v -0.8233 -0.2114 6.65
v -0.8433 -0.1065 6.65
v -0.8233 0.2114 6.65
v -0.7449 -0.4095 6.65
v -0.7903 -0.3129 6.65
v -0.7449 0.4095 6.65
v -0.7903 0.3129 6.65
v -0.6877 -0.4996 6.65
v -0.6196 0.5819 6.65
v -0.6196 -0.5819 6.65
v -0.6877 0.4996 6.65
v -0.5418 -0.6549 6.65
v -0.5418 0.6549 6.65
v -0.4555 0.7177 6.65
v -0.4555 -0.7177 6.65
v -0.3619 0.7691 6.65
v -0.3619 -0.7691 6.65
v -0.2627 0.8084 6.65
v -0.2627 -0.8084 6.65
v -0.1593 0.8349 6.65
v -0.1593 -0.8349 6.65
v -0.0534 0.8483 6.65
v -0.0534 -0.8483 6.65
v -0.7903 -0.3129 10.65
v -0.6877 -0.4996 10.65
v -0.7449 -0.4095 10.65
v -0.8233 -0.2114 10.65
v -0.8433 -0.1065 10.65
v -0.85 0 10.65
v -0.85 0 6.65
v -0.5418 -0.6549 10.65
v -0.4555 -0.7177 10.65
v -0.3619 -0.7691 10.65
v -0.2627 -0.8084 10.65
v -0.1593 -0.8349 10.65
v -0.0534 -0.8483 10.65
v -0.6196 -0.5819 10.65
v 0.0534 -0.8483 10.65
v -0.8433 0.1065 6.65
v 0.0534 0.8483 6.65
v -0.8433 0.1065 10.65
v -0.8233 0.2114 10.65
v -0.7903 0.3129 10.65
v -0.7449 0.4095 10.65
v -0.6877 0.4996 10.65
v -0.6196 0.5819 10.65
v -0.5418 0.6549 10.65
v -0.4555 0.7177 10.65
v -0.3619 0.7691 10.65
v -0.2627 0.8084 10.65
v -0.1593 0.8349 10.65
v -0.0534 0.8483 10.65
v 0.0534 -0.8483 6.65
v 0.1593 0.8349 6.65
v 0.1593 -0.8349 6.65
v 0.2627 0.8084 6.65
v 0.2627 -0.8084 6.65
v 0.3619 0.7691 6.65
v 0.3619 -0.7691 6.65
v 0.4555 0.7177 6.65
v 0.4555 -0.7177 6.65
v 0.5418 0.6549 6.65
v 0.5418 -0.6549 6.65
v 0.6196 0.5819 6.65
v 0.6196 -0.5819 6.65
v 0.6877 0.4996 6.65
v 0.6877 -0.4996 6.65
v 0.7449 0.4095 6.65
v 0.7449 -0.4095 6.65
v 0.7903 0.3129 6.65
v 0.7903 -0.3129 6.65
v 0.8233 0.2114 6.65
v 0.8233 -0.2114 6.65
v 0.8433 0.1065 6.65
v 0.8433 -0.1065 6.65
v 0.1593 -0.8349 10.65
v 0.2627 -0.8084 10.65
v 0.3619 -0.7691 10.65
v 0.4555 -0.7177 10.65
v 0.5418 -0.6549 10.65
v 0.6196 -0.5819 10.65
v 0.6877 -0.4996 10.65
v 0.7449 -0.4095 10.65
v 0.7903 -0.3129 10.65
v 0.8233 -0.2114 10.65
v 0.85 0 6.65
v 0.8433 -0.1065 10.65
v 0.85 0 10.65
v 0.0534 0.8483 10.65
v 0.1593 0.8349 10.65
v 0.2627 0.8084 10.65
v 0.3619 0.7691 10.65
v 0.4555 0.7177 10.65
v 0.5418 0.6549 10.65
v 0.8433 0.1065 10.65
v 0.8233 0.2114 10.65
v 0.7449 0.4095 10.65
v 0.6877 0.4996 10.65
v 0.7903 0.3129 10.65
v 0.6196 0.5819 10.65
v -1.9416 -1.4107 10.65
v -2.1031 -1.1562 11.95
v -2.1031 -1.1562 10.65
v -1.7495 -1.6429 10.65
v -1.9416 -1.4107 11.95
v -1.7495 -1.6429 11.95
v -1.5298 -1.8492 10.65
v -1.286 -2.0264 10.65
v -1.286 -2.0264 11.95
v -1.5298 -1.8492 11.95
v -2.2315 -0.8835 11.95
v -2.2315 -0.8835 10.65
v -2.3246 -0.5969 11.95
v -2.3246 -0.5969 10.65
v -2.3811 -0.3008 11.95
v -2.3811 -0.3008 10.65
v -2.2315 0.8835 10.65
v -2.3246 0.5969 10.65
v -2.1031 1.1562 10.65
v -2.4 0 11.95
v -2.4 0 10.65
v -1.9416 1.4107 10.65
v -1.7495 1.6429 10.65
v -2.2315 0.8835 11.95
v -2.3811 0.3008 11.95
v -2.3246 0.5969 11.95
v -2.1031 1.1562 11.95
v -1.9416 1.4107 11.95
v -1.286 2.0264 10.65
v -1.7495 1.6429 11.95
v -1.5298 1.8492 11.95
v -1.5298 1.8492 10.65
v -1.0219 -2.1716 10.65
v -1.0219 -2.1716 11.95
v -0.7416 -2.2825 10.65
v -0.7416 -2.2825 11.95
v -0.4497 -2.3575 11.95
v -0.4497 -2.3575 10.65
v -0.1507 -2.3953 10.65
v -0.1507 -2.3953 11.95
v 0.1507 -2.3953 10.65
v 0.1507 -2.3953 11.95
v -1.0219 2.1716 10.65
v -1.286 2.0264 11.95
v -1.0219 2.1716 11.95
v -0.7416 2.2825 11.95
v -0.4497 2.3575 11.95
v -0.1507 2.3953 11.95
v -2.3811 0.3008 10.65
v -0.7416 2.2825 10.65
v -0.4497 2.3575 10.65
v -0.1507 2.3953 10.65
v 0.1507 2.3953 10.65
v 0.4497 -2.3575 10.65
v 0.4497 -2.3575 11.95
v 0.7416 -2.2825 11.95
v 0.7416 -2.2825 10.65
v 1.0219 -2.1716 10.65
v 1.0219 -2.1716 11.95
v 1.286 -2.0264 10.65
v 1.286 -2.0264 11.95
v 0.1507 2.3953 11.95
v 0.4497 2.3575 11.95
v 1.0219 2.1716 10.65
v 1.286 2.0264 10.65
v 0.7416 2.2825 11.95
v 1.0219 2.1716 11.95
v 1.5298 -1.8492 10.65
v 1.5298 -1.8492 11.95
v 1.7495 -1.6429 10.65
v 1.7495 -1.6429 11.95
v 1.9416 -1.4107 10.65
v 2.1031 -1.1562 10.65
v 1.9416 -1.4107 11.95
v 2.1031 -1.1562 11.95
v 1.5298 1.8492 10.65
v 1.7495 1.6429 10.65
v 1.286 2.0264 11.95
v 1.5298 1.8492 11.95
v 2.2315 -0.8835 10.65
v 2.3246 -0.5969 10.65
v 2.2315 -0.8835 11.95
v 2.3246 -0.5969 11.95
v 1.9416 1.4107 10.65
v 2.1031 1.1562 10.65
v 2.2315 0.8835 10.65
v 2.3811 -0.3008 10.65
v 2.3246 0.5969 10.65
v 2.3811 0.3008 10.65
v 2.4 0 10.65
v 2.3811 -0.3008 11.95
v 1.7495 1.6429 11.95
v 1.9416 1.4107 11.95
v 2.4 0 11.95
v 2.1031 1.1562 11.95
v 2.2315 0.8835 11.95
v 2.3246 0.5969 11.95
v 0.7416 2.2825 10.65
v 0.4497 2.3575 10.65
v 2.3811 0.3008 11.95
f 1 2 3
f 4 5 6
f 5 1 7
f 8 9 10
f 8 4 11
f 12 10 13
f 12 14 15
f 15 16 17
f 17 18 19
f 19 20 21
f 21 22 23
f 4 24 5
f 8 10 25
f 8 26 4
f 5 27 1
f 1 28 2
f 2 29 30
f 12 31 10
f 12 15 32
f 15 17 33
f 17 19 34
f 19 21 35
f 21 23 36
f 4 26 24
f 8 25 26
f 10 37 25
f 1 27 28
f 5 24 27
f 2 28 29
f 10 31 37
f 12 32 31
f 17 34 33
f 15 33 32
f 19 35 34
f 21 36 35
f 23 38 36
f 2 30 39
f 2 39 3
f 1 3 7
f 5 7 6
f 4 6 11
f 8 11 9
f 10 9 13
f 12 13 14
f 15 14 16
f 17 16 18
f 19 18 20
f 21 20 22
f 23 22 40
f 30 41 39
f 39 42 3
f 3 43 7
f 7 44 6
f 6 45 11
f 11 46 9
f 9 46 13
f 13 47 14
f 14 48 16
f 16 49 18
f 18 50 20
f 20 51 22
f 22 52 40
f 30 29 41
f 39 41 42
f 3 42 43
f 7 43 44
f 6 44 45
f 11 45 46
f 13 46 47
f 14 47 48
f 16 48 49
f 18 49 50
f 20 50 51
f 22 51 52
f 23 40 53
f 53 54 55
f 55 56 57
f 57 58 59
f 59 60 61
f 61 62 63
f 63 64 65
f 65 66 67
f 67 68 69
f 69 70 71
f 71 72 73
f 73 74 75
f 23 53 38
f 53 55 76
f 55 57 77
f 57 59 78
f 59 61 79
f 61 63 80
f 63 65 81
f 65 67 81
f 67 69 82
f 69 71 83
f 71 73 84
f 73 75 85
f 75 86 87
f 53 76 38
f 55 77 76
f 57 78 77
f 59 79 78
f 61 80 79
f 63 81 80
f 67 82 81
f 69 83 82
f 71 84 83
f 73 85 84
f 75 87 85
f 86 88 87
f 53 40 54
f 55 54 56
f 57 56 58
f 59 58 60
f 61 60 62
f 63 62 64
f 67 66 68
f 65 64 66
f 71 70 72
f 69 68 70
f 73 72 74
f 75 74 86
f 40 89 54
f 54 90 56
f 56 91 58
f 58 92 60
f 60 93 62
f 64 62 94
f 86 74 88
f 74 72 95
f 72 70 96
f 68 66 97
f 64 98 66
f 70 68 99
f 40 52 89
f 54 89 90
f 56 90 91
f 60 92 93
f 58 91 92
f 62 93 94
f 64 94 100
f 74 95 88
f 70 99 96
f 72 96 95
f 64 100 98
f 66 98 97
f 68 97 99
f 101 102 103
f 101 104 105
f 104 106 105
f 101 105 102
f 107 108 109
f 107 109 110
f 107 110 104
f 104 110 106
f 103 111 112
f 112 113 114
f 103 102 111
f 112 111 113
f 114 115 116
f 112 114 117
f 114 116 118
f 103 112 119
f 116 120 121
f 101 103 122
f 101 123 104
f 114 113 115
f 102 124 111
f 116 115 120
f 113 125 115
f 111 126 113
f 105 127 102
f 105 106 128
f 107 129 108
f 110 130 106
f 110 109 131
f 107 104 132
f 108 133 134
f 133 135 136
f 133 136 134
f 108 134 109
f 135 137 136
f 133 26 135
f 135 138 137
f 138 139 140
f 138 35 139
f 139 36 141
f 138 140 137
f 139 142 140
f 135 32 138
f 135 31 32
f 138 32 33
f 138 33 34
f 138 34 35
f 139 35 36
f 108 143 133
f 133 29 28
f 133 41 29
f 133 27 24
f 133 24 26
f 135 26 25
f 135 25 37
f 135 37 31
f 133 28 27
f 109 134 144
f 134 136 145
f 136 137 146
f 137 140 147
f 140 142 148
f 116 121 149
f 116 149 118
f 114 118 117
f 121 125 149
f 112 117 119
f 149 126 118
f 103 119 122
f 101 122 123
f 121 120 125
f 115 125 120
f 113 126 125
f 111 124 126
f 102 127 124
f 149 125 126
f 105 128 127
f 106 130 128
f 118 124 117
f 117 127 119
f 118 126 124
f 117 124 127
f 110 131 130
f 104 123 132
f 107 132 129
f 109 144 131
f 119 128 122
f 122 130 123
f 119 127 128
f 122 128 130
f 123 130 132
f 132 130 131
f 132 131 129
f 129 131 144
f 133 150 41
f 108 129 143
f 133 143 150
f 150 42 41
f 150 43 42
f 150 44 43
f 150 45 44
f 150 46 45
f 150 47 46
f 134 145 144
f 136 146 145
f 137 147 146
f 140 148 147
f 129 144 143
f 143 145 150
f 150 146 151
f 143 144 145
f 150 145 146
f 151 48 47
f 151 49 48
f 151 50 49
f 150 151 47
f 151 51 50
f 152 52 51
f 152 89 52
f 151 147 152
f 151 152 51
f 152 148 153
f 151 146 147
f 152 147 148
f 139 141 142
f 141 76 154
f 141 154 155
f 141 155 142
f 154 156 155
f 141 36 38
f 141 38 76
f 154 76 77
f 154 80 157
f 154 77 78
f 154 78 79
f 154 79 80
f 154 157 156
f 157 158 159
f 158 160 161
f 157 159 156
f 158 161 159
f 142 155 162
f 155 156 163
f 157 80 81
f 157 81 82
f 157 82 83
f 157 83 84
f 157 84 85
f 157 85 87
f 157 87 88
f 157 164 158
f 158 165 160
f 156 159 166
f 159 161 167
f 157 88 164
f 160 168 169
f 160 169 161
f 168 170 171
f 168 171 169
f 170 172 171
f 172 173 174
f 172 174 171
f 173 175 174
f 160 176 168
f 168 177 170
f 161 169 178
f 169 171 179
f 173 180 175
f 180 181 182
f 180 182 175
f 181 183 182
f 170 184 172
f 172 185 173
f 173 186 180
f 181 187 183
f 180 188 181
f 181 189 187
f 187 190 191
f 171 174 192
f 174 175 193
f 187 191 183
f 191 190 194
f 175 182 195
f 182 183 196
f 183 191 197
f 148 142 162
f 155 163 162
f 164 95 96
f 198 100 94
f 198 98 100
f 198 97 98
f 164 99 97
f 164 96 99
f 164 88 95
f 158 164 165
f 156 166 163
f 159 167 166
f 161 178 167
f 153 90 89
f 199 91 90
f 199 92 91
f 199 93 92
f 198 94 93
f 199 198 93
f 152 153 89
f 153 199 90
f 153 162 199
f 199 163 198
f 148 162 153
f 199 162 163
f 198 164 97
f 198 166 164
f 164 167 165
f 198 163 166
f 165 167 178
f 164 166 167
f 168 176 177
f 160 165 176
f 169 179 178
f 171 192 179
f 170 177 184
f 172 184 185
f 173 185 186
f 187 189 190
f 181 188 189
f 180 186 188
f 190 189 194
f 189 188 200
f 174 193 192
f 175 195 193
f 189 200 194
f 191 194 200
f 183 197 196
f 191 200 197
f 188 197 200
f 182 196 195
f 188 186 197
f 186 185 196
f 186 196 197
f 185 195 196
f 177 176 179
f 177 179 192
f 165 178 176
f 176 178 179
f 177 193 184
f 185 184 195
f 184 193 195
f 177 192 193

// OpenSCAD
$fn = 50;

difference() {
	union() {
		translate(v = [0, 0, 6.65]) {
			cylinder(h = 4, r = 0.85);
		}
		translate(v = [0, 0, 10.65]) {
			cylinder(h = 1.3, r = 2.4);
		}
	}
	union();
}
